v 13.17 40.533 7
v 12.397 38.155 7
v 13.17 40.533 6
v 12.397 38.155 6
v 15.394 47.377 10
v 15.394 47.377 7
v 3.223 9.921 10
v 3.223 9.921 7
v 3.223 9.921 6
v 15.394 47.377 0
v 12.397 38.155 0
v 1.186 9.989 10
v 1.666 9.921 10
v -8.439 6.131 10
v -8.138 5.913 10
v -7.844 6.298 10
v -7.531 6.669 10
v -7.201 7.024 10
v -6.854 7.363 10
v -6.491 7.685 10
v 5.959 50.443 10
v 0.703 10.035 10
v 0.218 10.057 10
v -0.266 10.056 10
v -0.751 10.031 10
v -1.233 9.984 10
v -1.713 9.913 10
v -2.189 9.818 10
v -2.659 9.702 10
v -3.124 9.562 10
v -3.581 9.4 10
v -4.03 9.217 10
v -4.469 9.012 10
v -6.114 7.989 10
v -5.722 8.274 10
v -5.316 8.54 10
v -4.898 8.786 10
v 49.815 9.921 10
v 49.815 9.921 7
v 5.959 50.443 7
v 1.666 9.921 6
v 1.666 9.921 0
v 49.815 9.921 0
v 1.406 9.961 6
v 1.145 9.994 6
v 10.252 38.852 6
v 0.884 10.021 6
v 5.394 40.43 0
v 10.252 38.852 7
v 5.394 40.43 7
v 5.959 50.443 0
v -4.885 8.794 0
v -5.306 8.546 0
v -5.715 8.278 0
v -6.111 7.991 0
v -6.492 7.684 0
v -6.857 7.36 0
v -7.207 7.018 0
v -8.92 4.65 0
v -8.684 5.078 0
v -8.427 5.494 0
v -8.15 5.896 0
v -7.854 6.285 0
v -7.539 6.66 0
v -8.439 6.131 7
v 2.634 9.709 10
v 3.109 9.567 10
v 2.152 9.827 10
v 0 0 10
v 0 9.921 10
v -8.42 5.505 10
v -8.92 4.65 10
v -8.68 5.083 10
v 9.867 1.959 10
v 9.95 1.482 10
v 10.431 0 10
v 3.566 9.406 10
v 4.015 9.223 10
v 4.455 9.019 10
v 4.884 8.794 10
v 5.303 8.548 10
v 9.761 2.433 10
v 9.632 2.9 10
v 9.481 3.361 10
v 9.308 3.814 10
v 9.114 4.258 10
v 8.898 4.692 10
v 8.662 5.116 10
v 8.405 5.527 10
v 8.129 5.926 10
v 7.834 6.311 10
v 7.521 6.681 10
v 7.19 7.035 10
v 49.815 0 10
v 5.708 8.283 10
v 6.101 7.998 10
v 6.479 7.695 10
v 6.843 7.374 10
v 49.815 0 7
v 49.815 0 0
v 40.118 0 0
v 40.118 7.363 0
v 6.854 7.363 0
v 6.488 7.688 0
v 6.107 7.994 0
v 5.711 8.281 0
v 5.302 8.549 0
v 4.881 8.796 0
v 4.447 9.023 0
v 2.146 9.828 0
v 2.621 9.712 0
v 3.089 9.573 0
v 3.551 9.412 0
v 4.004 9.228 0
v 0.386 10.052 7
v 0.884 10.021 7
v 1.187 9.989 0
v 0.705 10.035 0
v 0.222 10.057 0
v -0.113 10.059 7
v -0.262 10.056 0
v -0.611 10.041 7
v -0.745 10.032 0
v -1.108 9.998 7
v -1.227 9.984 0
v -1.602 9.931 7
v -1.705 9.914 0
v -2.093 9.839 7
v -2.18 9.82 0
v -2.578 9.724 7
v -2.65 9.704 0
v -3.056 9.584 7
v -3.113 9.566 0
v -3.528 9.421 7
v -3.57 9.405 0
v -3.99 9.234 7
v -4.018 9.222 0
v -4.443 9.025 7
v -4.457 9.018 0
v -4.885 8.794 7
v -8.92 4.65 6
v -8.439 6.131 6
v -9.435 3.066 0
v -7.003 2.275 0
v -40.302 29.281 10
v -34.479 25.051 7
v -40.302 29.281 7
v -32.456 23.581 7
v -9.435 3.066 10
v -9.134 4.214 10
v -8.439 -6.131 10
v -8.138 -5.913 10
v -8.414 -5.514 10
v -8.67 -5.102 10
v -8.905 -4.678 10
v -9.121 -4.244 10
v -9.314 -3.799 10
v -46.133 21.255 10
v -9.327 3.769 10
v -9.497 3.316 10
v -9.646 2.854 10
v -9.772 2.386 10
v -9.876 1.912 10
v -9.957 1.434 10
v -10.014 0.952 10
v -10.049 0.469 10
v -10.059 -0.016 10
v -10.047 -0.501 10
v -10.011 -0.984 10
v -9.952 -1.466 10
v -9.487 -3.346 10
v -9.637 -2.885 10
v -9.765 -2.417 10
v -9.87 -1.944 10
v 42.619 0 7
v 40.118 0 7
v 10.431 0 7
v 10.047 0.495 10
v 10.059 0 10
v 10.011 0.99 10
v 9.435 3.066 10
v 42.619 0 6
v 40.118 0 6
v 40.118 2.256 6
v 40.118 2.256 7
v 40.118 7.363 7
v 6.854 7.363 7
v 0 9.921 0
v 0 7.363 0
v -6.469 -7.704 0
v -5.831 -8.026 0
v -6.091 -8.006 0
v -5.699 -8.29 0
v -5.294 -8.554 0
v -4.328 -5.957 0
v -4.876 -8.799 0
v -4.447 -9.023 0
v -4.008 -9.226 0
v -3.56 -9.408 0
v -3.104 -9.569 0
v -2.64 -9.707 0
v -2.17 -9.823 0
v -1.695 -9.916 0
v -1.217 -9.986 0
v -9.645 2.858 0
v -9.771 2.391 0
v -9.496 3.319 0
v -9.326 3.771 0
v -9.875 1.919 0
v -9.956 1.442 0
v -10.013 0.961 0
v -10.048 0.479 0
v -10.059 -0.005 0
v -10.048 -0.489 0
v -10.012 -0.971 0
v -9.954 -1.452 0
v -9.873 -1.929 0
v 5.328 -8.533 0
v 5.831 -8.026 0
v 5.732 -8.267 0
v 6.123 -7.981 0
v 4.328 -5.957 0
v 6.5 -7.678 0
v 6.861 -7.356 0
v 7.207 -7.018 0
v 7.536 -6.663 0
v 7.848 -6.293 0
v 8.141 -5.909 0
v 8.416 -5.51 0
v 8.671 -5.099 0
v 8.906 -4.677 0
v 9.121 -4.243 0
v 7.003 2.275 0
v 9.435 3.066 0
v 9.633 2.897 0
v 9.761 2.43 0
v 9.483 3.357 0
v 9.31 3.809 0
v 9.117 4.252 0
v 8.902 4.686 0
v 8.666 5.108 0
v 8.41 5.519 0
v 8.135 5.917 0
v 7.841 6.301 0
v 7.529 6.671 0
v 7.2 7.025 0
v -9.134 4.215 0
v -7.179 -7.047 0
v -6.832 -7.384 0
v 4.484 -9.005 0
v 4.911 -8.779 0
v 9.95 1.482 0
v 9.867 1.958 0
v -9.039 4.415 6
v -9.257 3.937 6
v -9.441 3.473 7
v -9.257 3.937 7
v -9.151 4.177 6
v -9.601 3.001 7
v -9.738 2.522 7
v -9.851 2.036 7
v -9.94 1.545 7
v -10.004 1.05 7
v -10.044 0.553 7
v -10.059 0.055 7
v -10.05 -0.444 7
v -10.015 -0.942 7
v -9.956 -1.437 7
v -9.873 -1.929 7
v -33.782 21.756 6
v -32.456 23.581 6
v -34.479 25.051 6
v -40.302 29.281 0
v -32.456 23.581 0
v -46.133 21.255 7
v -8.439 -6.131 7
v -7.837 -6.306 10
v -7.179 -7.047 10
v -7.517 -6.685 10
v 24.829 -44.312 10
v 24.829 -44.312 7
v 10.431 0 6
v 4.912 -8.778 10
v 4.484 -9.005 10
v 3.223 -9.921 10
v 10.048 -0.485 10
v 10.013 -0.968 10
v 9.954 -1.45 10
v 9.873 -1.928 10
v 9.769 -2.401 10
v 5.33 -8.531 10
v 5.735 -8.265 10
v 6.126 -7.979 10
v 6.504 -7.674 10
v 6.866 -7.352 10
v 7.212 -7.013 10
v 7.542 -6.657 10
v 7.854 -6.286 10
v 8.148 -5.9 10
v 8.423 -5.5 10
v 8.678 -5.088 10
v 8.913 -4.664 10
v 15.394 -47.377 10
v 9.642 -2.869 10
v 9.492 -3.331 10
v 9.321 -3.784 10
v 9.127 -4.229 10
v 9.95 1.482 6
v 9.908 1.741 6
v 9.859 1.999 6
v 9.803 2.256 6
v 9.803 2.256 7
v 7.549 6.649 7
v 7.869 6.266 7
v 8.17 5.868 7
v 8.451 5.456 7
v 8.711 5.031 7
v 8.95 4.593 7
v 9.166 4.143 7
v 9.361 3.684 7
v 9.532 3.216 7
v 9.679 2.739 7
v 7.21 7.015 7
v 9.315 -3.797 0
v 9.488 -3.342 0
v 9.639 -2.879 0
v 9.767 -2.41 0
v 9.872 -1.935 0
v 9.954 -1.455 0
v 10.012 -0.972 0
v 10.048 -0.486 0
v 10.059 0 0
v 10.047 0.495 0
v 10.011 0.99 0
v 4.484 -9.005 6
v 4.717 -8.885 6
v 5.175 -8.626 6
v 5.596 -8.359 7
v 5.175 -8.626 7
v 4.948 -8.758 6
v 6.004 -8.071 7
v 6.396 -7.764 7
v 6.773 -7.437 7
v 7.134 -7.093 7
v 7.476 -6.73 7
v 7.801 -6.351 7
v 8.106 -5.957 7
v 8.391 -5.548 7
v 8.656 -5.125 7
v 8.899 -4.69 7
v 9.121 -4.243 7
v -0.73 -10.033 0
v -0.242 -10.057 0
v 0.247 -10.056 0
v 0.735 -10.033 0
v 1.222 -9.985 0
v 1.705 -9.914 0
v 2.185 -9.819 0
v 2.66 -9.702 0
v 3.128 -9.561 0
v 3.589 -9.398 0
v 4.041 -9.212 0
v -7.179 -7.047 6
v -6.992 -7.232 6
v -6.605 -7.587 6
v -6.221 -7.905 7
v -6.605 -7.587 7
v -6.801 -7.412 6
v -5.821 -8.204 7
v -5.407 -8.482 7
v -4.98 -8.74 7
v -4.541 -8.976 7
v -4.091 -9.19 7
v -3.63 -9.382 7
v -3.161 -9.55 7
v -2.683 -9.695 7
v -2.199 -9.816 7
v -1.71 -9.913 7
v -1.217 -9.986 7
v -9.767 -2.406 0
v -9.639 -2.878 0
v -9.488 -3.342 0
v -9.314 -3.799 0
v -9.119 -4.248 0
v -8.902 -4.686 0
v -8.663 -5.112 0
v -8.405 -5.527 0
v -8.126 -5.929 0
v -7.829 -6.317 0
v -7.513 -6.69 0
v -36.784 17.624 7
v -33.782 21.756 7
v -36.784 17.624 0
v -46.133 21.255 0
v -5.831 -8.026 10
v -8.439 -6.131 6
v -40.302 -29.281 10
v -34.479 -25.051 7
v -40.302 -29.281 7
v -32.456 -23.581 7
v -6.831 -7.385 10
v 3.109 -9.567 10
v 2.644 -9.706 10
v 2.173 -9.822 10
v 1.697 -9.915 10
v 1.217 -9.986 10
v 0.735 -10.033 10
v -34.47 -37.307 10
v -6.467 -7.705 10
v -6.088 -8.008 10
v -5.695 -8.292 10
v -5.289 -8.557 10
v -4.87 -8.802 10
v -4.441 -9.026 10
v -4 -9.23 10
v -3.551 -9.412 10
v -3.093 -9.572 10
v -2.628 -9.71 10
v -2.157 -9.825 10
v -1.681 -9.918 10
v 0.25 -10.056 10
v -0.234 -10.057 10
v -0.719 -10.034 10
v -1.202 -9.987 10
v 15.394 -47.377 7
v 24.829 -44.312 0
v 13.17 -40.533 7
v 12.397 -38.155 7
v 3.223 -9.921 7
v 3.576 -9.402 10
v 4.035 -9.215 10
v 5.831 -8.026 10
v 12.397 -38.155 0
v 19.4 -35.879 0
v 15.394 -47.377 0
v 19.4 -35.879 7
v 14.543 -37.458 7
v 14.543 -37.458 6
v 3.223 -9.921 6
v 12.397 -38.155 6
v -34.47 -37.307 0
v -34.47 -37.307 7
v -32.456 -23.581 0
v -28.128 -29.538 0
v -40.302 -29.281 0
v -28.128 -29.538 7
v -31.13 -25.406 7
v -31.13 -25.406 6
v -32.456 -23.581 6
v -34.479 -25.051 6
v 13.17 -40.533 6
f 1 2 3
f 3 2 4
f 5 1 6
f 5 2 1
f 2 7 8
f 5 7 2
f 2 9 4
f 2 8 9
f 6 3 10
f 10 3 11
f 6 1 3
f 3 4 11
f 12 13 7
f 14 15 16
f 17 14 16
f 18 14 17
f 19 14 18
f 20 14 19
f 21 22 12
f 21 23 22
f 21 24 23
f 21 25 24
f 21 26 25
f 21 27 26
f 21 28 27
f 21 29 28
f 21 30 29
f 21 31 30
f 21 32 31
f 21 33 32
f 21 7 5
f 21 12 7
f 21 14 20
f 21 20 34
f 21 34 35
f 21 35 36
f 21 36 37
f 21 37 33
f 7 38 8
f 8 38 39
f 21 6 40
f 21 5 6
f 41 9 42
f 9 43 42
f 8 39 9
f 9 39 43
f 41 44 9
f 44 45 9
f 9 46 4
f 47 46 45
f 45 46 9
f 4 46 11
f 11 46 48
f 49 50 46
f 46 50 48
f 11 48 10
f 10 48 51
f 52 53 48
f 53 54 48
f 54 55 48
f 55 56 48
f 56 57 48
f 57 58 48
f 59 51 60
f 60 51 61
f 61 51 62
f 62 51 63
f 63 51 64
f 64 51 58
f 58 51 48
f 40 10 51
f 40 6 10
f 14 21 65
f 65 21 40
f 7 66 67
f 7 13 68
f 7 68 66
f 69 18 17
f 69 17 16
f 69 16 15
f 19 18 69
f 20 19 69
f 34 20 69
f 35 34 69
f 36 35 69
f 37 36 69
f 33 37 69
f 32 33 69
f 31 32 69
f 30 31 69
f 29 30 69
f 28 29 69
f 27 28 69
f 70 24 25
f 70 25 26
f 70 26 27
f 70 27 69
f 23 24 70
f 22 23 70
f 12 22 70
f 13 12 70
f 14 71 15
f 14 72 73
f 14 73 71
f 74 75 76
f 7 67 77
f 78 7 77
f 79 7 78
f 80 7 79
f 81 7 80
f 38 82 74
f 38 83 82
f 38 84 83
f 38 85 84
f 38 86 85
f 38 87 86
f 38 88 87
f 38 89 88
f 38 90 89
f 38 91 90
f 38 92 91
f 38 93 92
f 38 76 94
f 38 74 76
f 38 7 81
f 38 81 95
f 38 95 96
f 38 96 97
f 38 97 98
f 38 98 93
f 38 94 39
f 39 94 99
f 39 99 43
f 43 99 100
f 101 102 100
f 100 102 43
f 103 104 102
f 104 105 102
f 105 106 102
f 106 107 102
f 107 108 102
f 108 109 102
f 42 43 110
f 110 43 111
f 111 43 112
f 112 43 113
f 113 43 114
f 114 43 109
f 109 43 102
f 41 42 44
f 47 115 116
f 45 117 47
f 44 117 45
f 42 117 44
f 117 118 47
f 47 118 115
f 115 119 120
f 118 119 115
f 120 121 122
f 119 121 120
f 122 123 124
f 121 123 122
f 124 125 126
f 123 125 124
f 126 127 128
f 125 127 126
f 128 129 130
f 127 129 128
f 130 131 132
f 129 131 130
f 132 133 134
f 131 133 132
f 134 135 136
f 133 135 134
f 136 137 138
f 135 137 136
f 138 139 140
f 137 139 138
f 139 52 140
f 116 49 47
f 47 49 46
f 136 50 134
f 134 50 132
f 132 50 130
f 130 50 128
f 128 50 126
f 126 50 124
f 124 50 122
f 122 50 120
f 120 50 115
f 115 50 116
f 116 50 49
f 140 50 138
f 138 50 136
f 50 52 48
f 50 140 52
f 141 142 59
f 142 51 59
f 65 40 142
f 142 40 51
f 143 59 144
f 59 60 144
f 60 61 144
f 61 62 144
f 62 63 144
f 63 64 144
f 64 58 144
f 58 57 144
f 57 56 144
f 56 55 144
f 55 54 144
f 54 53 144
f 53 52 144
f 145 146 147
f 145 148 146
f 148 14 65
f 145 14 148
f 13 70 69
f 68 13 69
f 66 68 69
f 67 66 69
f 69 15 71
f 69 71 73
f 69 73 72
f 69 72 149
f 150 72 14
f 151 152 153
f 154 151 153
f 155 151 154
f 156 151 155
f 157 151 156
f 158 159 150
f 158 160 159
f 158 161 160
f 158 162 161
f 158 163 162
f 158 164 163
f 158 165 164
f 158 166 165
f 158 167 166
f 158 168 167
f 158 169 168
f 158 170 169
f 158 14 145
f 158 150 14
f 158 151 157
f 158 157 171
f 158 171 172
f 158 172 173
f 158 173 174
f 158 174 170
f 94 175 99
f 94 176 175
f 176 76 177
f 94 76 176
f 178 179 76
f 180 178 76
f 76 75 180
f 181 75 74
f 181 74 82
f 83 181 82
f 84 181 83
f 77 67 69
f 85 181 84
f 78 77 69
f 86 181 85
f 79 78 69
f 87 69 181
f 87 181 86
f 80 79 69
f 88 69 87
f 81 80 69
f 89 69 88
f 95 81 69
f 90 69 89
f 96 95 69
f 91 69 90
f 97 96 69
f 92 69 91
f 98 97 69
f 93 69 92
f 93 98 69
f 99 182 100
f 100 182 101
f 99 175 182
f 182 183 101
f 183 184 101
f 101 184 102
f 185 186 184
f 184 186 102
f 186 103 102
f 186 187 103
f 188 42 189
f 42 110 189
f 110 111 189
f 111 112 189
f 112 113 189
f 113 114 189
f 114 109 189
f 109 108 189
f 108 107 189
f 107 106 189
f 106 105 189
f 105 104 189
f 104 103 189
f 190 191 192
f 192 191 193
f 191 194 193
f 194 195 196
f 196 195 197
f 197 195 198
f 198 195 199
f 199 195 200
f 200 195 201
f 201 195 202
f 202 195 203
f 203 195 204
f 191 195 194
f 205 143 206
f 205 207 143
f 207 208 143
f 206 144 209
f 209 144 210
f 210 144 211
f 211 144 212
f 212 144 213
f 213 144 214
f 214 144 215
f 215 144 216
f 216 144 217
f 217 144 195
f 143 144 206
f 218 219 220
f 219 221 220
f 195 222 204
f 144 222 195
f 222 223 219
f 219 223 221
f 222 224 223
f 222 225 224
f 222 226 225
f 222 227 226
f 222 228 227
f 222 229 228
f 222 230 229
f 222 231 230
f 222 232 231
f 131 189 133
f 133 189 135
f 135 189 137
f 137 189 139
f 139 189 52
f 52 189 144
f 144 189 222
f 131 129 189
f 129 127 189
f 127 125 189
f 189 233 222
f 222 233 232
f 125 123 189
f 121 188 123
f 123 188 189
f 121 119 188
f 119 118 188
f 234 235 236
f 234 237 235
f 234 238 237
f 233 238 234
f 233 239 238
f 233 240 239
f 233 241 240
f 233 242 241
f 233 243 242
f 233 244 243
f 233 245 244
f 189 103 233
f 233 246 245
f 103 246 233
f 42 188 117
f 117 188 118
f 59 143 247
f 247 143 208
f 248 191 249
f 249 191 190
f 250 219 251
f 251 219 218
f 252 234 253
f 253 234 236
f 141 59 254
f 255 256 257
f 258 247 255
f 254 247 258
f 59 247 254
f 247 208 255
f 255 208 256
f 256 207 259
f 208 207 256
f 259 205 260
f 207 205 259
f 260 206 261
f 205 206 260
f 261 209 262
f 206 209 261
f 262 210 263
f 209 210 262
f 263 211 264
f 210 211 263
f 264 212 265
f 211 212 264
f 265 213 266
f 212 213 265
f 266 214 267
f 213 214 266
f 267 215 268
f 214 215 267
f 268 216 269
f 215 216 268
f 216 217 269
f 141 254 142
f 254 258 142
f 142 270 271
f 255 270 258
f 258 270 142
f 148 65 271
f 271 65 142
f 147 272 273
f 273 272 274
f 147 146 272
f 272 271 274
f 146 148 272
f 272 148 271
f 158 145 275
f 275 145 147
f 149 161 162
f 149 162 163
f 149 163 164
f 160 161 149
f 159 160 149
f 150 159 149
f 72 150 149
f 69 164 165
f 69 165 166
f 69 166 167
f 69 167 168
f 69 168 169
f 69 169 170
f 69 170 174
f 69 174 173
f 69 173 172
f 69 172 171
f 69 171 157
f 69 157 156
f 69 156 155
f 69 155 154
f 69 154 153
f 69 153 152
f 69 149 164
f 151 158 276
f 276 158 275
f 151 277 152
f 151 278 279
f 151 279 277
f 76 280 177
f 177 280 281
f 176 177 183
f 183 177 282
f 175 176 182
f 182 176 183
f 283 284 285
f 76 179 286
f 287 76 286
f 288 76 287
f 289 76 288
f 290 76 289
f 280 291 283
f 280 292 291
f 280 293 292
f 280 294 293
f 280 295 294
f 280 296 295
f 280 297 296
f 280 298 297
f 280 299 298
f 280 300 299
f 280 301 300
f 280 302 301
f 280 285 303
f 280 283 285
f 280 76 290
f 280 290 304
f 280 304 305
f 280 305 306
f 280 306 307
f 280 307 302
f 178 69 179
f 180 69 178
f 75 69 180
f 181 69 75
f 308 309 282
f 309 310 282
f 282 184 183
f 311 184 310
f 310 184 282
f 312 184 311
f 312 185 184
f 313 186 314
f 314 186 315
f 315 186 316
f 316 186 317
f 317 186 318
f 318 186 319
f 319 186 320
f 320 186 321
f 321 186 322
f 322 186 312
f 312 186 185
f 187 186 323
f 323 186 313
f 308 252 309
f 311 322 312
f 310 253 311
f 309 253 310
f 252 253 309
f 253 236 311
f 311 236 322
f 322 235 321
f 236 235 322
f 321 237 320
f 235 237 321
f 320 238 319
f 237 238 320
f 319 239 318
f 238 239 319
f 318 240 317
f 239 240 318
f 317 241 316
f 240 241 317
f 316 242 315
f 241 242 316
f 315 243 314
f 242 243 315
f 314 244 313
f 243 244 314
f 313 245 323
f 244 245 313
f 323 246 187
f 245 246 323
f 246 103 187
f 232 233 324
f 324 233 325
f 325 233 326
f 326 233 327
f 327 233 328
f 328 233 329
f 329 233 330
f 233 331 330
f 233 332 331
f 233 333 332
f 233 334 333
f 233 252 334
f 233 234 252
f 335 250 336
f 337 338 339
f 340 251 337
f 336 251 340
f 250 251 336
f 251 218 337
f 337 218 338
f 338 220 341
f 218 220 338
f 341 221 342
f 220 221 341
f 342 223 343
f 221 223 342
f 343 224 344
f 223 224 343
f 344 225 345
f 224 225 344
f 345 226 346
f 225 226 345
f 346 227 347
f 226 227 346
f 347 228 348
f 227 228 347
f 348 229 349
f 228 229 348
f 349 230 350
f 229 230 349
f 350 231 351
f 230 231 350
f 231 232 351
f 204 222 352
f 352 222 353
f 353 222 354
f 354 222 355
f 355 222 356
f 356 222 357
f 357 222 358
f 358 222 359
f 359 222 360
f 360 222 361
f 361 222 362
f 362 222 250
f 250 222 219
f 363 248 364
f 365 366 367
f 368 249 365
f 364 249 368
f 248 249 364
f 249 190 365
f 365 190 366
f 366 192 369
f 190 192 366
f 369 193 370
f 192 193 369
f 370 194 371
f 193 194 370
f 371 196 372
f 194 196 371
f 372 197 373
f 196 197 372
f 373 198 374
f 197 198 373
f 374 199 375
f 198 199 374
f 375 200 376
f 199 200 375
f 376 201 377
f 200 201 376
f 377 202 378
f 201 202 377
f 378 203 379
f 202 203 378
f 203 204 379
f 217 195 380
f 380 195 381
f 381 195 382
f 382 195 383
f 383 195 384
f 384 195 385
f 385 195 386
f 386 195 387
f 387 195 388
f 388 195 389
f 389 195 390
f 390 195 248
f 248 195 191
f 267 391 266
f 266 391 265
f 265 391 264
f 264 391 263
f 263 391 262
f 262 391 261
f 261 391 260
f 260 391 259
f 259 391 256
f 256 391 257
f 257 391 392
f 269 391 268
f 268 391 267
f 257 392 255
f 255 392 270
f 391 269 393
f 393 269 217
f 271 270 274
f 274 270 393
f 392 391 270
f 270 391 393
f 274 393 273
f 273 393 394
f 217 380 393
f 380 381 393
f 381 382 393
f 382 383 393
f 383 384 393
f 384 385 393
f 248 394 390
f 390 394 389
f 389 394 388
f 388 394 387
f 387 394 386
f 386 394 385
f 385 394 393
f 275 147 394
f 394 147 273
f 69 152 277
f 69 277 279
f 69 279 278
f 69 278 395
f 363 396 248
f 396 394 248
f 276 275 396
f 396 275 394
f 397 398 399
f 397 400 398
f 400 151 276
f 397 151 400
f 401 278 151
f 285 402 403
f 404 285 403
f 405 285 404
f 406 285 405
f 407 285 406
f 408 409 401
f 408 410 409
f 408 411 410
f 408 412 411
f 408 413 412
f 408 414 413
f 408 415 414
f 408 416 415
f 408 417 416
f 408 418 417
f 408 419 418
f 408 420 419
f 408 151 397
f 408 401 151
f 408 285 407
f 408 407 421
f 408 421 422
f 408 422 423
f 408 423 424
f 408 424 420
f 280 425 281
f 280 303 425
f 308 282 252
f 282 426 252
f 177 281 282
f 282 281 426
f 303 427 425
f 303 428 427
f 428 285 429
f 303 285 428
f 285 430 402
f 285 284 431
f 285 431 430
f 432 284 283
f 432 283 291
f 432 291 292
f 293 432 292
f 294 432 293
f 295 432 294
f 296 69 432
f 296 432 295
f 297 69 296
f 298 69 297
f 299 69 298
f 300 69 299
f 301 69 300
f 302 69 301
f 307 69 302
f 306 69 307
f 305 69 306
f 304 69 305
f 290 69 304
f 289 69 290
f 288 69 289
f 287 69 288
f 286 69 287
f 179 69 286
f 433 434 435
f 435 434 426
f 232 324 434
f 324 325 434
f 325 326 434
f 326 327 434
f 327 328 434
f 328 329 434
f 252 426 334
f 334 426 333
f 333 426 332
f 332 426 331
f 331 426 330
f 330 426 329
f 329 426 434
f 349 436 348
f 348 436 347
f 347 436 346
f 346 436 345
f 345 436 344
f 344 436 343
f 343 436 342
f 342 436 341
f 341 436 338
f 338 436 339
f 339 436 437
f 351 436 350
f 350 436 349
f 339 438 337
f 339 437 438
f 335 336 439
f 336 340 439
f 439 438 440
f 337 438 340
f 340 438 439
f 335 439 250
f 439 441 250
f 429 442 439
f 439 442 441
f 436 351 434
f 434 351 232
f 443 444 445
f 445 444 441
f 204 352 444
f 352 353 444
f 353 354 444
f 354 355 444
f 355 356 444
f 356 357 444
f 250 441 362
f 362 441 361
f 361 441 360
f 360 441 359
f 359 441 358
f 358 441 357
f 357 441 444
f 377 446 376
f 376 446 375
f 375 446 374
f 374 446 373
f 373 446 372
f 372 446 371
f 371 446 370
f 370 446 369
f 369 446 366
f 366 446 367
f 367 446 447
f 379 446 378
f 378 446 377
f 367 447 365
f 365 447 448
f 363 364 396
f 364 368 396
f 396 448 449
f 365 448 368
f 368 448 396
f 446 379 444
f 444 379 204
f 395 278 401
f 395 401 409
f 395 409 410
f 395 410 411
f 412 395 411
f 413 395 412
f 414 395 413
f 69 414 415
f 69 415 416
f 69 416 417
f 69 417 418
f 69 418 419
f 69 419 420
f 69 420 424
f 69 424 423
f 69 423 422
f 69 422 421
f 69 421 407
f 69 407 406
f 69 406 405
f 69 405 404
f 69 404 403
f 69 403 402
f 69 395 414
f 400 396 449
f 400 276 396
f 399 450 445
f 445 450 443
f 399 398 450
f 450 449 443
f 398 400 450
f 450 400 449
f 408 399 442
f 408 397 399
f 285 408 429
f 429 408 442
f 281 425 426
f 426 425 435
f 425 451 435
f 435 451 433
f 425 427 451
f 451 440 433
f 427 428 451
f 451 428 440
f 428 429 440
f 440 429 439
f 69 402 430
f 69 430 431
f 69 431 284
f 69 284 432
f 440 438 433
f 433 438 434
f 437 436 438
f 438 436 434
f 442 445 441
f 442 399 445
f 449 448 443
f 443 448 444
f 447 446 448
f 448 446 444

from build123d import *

# Parameters (mm, degrees)
SKETCH_R           = 10.059441
PAD_DEPTH          = 10
SKETCH001_W        = 49.81546
SKETCH001_H        = 9.920586
PAD001_DEPTH       = 3
PAD002_DEPTH       = 7
SKETCH004_W        = 41.042639
SKETCH004_H        = 2.256016
PAD003_DEPTH       = 1
POLARPATTERN_COUNT = 5


with BuildPart() as part:
    # Sketch → Pad (new body)
    with BuildSketch(Plane.XY):
        Circle(SKETCH_R)
    extrude(amount=PAD_DEPTH)

    # Sketch001 (on Face3 of Pad) → Pad001 (join)
    with BuildSketch(Plane.XY.offset(10)):
        with Locations((24.90773, 4.960293)):
            Rectangle(SKETCH001_W, SKETCH001_H)
    pad001 = extrude(amount=-PAD001_DEPTH)

    # Sketch003 (on Face6 of Pad001) → Pad002 (join)
    with BuildSketch(Plane(origin=(0, 0, 7), x_dir=(1, 0, 0), z_dir=(0, 0, -1))):
        Polygon((49.81546, 0), (40.118187, 0), (40.118187, -7.363322), (0, -7.363322), (0, -9.920586), (49.81546, -9.920586), align=None)
    pad002 = extrude(amount=PAD002_DEPTH)

    # Sketch004 → Pad003 (join)
    with BuildSketch(Plane(origin=(0, 0, 7), x_dir=(1, 0, 0), z_dir=(0, 0, -1))):
        with Locations((22.09739, -1.128008)):
            Rectangle(SKETCH004_W, SKETCH004_H)
    pad003 = extrude(amount=PAD003_DEPTH)

    # PolarPattern: Pad001, Pad002, Pad003 ×5 about axis
    polarpattern_axis = Axis((0, 0, 10), (0, 0, 1))
    for i in range(1, POLARPATTERN_COUNT):
        add(pad001.rotate(polarpattern_axis, i * 360 / POLARPATTERN_COUNT))
        add(pad002.rotate(polarpattern_axis, i * 360 / POLARPATTERN_COUNT))
        add(pad003.rotate(polarpattern_axis, i * 360 / POLARPATTERN_COUNT))


solid = part.part
